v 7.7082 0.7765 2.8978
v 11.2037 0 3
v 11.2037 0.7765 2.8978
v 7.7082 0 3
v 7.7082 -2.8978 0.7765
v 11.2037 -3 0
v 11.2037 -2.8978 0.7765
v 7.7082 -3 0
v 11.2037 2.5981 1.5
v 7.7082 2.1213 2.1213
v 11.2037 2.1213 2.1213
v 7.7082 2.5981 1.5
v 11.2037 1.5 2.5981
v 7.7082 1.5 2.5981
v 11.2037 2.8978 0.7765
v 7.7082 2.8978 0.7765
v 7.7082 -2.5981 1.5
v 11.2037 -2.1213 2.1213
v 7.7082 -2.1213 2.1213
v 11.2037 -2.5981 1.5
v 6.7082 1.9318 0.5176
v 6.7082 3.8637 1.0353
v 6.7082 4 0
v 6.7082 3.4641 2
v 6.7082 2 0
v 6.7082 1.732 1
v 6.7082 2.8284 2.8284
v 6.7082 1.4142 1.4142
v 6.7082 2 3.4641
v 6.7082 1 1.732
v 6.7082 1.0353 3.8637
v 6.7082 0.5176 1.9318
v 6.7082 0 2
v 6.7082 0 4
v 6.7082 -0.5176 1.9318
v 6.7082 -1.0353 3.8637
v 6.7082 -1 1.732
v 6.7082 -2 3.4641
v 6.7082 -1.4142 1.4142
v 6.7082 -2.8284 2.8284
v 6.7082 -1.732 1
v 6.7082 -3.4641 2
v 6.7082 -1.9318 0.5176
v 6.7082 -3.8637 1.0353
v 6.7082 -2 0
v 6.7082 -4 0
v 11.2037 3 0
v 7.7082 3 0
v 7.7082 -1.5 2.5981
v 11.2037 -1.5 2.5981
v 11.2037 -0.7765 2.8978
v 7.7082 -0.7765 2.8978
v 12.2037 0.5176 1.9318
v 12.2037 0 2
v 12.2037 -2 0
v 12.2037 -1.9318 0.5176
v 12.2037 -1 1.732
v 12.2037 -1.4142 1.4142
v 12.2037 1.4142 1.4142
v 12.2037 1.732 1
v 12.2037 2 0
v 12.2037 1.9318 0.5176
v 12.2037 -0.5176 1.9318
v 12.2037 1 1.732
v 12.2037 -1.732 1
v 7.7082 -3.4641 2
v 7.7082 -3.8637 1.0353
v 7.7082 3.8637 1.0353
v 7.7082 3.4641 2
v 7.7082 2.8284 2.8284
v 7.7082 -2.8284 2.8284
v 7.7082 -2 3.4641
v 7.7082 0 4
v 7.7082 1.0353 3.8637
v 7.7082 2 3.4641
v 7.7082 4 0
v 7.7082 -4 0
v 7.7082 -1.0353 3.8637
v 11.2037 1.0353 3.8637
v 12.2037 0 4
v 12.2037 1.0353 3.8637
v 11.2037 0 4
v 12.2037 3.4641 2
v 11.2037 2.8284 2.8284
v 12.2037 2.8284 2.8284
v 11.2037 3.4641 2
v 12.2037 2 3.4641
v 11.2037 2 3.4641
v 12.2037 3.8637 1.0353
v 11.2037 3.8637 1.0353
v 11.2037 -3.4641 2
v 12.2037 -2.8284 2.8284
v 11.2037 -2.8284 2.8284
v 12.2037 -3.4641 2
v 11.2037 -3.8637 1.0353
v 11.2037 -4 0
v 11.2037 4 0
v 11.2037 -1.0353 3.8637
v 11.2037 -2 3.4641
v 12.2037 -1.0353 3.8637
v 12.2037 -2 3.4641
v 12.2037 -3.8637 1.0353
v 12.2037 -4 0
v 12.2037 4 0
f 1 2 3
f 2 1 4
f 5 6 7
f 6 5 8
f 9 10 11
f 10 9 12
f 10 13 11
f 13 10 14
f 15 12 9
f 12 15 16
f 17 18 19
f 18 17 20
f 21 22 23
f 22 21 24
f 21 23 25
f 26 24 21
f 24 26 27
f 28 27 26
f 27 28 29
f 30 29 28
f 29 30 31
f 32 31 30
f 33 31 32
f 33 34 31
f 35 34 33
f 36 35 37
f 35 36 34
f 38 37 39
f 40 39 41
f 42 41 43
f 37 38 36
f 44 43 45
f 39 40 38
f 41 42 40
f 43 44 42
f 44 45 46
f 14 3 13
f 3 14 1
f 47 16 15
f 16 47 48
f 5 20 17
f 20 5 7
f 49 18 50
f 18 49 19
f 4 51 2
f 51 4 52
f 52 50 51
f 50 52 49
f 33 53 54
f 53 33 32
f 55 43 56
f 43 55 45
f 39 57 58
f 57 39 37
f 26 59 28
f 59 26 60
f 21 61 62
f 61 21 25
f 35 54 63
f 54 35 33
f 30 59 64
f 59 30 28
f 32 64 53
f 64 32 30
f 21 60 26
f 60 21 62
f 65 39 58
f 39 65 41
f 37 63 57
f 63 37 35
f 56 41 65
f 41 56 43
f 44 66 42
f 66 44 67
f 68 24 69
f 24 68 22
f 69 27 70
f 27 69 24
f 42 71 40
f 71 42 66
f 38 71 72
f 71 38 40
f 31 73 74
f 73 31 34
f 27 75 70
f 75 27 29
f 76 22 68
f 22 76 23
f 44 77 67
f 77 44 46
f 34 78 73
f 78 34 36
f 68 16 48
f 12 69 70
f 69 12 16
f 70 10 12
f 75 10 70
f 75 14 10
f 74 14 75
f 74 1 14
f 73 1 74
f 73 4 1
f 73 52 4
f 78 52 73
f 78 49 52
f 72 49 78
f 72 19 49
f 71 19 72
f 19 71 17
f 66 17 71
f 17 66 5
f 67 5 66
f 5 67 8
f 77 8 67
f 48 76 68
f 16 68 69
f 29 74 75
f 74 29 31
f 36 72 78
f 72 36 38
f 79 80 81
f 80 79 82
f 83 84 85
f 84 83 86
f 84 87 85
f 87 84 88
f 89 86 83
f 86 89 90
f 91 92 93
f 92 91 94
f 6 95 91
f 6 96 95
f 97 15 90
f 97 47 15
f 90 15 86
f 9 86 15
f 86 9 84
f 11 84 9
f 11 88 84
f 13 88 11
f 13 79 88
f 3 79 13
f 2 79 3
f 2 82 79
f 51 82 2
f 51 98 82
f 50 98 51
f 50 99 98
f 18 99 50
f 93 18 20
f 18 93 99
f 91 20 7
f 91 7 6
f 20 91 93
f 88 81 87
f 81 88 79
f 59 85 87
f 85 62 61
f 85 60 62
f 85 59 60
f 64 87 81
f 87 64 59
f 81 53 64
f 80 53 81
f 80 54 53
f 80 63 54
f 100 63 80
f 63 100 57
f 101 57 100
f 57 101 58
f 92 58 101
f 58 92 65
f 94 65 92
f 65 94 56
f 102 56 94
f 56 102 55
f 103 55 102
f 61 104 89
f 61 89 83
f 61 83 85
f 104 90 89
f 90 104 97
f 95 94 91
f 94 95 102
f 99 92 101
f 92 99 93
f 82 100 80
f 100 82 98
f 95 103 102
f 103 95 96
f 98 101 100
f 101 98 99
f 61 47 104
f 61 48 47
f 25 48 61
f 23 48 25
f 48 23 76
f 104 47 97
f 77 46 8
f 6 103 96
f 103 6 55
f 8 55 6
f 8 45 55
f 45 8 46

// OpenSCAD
// file: ../build_environments.scad
// build_environments.scad: modules to build level sections
//

module pool(diameter=10.0, wall_height=2.0, step_width=3.0, connections=[])
{
    difference() {
        union() {
        difference() {
            cylinder(h=0.5,r1=diameter+step_width,r2=diameter+step_width,$fn=48);
            translate([0,0,-0.1])
                cylinder(h=0.7,r1=diameter,r2=diameter,$fn=48);
        }
        difference() {
            cylinder(h=wall_height,r1=diameter+step_width+1.0,r2=diameter+step_width+1.0,$fn=48);
            translate([0,0,-0.1])
                cylinder(h=wall_height+0.2,r1=diameter+step_width,r2=diameter+step_width,$fn=48);
        }
        }
    
        for (c = connections)
        {
            rotate([0,90,0]) {
                angle = atan2(c[1],c[0]);
                rotate([-angle,0,0]) {
                    cylinder(h=diameter+5.0,r1=c[2],r2=c[2],$fn=48);
                }
            }
        }
    }
}

module straight(length=10.0, width=2.0, dy1=0.0, dy2=0.0, dz=0.0)
{
    dims = [0, 0, 0, 0, 0, (dz/length)];
    matrix = [
        [ 1, dims[0], dims[1], 0 ],
        [ dims[2], 1, dims[4], 0 ],
        [ dims[5], dims[3], 1, 0 ],
        [ 0, 0, 0, 1 ]
    ];
    multmatrix(matrix)
    difference() {
        translate([dy1,0,0])
        union() {
            rotate([0,90,0]) {
                difference() {
                    cylinder(h=(length-dy1-dy2),r1=width+1.0,r2=width+1.0,$fn=24);
                    translate([0,0,-0.1])
                        cylinder(h=(length-dy1-dy2+0.2),r1=width,r2=width,$fn=24);
                }
                difference() {
                    cylinder(h=1.0,r1=width+2.0,r2=width+2.0,$fn=24);
                    translate([0,0,-0.1])
                        cylinder(h=1.2,r1=width,r2=width,$fn=24);
                }
                translate([0,0,(length-dy1-dy2)-1.0]) {
                    difference() {
                        cylinder(h=1.0,r1=width+2.0,r2=width+2.0,$fn=24);
                        translate([0,0,-0.1])
                            cylinder(h=1.2,r1=width,r2=width,$fn=24);
                    }
                }
            }
        }
        translate([0,0,-(2*width+4.0)/2])
            cube([3*length,3*length,2*width+4.0],center=true);
    }
}

module curve(p0=[0,0], center=[0,0], dir=1, angle=0.0, width=2.0)
{
    radius = sqrt((p0[0]-center[0])*(p0[0]-center[0]) + (p0[1]-center[1])*(p0[1]-center[1]));
    if (dir == 0) {
        difference() {
            rotate([0,0,-90])
            difference() {
                rotate_extrude(angle = angle, convexity = 10, $fn=32)
                    translate([radius, 0, 0])
                        circle(r = width+1.0,$fn=24);
                rotate([0,0,-1.0])
                    rotate_extrude(angle = angle+2.0, convexity = 10, $fn=32)
                        translate([radius, 0, 0])
                            circle(r = width,$fn=24);
            }
            translate([0,0,-(2*width+4.0)/2])
                cube([5*radius,5*radius,2*width+4.0],center=true);
        }
    }
    else {
        difference() {
            rotate([0,0,90])
            difference() {
                rotate_extrude(angle = -angle, convexity = 10, $fn=32)
                    translate([radius, 0, 0])
                        circle(r = width+1.0,$fn=24);
                rotate([0,0,1.0])
                    rotate_extrude(angle = -angle-2.0, convexity = 10, $fn=32)
                        translate([radius, 0, 0])
                            circle(r = width,$fn=24);
            }
            translate([0,0,-(2*width+4.0)/2])
                cube([5*radius,5*radius,2*width+4.0],center=true);
        }
    }

}

// test pool
//pool(diameter=12.0000, wall_height=3.0000, step_width=3.0000, connections=[[0.0000,-26.0000,2.0000], [23.6074,0.0000,2.0000]]);

// test straight, slope
//straight(length=26.0000, width=2.0000, dy1=11.8322, dy2=6.7082, dz=0.0000);
//straight(length=29.1549, width=12.0000, dy1=0.0000, dy2=0.0000, dz=-15.0000);

// test curve
//curve(p0=[23.6074, 0.0000], center=[23.6074, 5.0000], dir=0, angle=60.1011, width=2.0000);
//curve(p0=[33.6426, 12.4219], center=[37.9771, 9.9295], dir=1, angle=120.4627, width=2.0000);
// main file
use <../build_environments.scad>;
straight(length=12.2037, width=2.0000, dy1=6.7082, dy2=0.0000, dz=0.0000);
